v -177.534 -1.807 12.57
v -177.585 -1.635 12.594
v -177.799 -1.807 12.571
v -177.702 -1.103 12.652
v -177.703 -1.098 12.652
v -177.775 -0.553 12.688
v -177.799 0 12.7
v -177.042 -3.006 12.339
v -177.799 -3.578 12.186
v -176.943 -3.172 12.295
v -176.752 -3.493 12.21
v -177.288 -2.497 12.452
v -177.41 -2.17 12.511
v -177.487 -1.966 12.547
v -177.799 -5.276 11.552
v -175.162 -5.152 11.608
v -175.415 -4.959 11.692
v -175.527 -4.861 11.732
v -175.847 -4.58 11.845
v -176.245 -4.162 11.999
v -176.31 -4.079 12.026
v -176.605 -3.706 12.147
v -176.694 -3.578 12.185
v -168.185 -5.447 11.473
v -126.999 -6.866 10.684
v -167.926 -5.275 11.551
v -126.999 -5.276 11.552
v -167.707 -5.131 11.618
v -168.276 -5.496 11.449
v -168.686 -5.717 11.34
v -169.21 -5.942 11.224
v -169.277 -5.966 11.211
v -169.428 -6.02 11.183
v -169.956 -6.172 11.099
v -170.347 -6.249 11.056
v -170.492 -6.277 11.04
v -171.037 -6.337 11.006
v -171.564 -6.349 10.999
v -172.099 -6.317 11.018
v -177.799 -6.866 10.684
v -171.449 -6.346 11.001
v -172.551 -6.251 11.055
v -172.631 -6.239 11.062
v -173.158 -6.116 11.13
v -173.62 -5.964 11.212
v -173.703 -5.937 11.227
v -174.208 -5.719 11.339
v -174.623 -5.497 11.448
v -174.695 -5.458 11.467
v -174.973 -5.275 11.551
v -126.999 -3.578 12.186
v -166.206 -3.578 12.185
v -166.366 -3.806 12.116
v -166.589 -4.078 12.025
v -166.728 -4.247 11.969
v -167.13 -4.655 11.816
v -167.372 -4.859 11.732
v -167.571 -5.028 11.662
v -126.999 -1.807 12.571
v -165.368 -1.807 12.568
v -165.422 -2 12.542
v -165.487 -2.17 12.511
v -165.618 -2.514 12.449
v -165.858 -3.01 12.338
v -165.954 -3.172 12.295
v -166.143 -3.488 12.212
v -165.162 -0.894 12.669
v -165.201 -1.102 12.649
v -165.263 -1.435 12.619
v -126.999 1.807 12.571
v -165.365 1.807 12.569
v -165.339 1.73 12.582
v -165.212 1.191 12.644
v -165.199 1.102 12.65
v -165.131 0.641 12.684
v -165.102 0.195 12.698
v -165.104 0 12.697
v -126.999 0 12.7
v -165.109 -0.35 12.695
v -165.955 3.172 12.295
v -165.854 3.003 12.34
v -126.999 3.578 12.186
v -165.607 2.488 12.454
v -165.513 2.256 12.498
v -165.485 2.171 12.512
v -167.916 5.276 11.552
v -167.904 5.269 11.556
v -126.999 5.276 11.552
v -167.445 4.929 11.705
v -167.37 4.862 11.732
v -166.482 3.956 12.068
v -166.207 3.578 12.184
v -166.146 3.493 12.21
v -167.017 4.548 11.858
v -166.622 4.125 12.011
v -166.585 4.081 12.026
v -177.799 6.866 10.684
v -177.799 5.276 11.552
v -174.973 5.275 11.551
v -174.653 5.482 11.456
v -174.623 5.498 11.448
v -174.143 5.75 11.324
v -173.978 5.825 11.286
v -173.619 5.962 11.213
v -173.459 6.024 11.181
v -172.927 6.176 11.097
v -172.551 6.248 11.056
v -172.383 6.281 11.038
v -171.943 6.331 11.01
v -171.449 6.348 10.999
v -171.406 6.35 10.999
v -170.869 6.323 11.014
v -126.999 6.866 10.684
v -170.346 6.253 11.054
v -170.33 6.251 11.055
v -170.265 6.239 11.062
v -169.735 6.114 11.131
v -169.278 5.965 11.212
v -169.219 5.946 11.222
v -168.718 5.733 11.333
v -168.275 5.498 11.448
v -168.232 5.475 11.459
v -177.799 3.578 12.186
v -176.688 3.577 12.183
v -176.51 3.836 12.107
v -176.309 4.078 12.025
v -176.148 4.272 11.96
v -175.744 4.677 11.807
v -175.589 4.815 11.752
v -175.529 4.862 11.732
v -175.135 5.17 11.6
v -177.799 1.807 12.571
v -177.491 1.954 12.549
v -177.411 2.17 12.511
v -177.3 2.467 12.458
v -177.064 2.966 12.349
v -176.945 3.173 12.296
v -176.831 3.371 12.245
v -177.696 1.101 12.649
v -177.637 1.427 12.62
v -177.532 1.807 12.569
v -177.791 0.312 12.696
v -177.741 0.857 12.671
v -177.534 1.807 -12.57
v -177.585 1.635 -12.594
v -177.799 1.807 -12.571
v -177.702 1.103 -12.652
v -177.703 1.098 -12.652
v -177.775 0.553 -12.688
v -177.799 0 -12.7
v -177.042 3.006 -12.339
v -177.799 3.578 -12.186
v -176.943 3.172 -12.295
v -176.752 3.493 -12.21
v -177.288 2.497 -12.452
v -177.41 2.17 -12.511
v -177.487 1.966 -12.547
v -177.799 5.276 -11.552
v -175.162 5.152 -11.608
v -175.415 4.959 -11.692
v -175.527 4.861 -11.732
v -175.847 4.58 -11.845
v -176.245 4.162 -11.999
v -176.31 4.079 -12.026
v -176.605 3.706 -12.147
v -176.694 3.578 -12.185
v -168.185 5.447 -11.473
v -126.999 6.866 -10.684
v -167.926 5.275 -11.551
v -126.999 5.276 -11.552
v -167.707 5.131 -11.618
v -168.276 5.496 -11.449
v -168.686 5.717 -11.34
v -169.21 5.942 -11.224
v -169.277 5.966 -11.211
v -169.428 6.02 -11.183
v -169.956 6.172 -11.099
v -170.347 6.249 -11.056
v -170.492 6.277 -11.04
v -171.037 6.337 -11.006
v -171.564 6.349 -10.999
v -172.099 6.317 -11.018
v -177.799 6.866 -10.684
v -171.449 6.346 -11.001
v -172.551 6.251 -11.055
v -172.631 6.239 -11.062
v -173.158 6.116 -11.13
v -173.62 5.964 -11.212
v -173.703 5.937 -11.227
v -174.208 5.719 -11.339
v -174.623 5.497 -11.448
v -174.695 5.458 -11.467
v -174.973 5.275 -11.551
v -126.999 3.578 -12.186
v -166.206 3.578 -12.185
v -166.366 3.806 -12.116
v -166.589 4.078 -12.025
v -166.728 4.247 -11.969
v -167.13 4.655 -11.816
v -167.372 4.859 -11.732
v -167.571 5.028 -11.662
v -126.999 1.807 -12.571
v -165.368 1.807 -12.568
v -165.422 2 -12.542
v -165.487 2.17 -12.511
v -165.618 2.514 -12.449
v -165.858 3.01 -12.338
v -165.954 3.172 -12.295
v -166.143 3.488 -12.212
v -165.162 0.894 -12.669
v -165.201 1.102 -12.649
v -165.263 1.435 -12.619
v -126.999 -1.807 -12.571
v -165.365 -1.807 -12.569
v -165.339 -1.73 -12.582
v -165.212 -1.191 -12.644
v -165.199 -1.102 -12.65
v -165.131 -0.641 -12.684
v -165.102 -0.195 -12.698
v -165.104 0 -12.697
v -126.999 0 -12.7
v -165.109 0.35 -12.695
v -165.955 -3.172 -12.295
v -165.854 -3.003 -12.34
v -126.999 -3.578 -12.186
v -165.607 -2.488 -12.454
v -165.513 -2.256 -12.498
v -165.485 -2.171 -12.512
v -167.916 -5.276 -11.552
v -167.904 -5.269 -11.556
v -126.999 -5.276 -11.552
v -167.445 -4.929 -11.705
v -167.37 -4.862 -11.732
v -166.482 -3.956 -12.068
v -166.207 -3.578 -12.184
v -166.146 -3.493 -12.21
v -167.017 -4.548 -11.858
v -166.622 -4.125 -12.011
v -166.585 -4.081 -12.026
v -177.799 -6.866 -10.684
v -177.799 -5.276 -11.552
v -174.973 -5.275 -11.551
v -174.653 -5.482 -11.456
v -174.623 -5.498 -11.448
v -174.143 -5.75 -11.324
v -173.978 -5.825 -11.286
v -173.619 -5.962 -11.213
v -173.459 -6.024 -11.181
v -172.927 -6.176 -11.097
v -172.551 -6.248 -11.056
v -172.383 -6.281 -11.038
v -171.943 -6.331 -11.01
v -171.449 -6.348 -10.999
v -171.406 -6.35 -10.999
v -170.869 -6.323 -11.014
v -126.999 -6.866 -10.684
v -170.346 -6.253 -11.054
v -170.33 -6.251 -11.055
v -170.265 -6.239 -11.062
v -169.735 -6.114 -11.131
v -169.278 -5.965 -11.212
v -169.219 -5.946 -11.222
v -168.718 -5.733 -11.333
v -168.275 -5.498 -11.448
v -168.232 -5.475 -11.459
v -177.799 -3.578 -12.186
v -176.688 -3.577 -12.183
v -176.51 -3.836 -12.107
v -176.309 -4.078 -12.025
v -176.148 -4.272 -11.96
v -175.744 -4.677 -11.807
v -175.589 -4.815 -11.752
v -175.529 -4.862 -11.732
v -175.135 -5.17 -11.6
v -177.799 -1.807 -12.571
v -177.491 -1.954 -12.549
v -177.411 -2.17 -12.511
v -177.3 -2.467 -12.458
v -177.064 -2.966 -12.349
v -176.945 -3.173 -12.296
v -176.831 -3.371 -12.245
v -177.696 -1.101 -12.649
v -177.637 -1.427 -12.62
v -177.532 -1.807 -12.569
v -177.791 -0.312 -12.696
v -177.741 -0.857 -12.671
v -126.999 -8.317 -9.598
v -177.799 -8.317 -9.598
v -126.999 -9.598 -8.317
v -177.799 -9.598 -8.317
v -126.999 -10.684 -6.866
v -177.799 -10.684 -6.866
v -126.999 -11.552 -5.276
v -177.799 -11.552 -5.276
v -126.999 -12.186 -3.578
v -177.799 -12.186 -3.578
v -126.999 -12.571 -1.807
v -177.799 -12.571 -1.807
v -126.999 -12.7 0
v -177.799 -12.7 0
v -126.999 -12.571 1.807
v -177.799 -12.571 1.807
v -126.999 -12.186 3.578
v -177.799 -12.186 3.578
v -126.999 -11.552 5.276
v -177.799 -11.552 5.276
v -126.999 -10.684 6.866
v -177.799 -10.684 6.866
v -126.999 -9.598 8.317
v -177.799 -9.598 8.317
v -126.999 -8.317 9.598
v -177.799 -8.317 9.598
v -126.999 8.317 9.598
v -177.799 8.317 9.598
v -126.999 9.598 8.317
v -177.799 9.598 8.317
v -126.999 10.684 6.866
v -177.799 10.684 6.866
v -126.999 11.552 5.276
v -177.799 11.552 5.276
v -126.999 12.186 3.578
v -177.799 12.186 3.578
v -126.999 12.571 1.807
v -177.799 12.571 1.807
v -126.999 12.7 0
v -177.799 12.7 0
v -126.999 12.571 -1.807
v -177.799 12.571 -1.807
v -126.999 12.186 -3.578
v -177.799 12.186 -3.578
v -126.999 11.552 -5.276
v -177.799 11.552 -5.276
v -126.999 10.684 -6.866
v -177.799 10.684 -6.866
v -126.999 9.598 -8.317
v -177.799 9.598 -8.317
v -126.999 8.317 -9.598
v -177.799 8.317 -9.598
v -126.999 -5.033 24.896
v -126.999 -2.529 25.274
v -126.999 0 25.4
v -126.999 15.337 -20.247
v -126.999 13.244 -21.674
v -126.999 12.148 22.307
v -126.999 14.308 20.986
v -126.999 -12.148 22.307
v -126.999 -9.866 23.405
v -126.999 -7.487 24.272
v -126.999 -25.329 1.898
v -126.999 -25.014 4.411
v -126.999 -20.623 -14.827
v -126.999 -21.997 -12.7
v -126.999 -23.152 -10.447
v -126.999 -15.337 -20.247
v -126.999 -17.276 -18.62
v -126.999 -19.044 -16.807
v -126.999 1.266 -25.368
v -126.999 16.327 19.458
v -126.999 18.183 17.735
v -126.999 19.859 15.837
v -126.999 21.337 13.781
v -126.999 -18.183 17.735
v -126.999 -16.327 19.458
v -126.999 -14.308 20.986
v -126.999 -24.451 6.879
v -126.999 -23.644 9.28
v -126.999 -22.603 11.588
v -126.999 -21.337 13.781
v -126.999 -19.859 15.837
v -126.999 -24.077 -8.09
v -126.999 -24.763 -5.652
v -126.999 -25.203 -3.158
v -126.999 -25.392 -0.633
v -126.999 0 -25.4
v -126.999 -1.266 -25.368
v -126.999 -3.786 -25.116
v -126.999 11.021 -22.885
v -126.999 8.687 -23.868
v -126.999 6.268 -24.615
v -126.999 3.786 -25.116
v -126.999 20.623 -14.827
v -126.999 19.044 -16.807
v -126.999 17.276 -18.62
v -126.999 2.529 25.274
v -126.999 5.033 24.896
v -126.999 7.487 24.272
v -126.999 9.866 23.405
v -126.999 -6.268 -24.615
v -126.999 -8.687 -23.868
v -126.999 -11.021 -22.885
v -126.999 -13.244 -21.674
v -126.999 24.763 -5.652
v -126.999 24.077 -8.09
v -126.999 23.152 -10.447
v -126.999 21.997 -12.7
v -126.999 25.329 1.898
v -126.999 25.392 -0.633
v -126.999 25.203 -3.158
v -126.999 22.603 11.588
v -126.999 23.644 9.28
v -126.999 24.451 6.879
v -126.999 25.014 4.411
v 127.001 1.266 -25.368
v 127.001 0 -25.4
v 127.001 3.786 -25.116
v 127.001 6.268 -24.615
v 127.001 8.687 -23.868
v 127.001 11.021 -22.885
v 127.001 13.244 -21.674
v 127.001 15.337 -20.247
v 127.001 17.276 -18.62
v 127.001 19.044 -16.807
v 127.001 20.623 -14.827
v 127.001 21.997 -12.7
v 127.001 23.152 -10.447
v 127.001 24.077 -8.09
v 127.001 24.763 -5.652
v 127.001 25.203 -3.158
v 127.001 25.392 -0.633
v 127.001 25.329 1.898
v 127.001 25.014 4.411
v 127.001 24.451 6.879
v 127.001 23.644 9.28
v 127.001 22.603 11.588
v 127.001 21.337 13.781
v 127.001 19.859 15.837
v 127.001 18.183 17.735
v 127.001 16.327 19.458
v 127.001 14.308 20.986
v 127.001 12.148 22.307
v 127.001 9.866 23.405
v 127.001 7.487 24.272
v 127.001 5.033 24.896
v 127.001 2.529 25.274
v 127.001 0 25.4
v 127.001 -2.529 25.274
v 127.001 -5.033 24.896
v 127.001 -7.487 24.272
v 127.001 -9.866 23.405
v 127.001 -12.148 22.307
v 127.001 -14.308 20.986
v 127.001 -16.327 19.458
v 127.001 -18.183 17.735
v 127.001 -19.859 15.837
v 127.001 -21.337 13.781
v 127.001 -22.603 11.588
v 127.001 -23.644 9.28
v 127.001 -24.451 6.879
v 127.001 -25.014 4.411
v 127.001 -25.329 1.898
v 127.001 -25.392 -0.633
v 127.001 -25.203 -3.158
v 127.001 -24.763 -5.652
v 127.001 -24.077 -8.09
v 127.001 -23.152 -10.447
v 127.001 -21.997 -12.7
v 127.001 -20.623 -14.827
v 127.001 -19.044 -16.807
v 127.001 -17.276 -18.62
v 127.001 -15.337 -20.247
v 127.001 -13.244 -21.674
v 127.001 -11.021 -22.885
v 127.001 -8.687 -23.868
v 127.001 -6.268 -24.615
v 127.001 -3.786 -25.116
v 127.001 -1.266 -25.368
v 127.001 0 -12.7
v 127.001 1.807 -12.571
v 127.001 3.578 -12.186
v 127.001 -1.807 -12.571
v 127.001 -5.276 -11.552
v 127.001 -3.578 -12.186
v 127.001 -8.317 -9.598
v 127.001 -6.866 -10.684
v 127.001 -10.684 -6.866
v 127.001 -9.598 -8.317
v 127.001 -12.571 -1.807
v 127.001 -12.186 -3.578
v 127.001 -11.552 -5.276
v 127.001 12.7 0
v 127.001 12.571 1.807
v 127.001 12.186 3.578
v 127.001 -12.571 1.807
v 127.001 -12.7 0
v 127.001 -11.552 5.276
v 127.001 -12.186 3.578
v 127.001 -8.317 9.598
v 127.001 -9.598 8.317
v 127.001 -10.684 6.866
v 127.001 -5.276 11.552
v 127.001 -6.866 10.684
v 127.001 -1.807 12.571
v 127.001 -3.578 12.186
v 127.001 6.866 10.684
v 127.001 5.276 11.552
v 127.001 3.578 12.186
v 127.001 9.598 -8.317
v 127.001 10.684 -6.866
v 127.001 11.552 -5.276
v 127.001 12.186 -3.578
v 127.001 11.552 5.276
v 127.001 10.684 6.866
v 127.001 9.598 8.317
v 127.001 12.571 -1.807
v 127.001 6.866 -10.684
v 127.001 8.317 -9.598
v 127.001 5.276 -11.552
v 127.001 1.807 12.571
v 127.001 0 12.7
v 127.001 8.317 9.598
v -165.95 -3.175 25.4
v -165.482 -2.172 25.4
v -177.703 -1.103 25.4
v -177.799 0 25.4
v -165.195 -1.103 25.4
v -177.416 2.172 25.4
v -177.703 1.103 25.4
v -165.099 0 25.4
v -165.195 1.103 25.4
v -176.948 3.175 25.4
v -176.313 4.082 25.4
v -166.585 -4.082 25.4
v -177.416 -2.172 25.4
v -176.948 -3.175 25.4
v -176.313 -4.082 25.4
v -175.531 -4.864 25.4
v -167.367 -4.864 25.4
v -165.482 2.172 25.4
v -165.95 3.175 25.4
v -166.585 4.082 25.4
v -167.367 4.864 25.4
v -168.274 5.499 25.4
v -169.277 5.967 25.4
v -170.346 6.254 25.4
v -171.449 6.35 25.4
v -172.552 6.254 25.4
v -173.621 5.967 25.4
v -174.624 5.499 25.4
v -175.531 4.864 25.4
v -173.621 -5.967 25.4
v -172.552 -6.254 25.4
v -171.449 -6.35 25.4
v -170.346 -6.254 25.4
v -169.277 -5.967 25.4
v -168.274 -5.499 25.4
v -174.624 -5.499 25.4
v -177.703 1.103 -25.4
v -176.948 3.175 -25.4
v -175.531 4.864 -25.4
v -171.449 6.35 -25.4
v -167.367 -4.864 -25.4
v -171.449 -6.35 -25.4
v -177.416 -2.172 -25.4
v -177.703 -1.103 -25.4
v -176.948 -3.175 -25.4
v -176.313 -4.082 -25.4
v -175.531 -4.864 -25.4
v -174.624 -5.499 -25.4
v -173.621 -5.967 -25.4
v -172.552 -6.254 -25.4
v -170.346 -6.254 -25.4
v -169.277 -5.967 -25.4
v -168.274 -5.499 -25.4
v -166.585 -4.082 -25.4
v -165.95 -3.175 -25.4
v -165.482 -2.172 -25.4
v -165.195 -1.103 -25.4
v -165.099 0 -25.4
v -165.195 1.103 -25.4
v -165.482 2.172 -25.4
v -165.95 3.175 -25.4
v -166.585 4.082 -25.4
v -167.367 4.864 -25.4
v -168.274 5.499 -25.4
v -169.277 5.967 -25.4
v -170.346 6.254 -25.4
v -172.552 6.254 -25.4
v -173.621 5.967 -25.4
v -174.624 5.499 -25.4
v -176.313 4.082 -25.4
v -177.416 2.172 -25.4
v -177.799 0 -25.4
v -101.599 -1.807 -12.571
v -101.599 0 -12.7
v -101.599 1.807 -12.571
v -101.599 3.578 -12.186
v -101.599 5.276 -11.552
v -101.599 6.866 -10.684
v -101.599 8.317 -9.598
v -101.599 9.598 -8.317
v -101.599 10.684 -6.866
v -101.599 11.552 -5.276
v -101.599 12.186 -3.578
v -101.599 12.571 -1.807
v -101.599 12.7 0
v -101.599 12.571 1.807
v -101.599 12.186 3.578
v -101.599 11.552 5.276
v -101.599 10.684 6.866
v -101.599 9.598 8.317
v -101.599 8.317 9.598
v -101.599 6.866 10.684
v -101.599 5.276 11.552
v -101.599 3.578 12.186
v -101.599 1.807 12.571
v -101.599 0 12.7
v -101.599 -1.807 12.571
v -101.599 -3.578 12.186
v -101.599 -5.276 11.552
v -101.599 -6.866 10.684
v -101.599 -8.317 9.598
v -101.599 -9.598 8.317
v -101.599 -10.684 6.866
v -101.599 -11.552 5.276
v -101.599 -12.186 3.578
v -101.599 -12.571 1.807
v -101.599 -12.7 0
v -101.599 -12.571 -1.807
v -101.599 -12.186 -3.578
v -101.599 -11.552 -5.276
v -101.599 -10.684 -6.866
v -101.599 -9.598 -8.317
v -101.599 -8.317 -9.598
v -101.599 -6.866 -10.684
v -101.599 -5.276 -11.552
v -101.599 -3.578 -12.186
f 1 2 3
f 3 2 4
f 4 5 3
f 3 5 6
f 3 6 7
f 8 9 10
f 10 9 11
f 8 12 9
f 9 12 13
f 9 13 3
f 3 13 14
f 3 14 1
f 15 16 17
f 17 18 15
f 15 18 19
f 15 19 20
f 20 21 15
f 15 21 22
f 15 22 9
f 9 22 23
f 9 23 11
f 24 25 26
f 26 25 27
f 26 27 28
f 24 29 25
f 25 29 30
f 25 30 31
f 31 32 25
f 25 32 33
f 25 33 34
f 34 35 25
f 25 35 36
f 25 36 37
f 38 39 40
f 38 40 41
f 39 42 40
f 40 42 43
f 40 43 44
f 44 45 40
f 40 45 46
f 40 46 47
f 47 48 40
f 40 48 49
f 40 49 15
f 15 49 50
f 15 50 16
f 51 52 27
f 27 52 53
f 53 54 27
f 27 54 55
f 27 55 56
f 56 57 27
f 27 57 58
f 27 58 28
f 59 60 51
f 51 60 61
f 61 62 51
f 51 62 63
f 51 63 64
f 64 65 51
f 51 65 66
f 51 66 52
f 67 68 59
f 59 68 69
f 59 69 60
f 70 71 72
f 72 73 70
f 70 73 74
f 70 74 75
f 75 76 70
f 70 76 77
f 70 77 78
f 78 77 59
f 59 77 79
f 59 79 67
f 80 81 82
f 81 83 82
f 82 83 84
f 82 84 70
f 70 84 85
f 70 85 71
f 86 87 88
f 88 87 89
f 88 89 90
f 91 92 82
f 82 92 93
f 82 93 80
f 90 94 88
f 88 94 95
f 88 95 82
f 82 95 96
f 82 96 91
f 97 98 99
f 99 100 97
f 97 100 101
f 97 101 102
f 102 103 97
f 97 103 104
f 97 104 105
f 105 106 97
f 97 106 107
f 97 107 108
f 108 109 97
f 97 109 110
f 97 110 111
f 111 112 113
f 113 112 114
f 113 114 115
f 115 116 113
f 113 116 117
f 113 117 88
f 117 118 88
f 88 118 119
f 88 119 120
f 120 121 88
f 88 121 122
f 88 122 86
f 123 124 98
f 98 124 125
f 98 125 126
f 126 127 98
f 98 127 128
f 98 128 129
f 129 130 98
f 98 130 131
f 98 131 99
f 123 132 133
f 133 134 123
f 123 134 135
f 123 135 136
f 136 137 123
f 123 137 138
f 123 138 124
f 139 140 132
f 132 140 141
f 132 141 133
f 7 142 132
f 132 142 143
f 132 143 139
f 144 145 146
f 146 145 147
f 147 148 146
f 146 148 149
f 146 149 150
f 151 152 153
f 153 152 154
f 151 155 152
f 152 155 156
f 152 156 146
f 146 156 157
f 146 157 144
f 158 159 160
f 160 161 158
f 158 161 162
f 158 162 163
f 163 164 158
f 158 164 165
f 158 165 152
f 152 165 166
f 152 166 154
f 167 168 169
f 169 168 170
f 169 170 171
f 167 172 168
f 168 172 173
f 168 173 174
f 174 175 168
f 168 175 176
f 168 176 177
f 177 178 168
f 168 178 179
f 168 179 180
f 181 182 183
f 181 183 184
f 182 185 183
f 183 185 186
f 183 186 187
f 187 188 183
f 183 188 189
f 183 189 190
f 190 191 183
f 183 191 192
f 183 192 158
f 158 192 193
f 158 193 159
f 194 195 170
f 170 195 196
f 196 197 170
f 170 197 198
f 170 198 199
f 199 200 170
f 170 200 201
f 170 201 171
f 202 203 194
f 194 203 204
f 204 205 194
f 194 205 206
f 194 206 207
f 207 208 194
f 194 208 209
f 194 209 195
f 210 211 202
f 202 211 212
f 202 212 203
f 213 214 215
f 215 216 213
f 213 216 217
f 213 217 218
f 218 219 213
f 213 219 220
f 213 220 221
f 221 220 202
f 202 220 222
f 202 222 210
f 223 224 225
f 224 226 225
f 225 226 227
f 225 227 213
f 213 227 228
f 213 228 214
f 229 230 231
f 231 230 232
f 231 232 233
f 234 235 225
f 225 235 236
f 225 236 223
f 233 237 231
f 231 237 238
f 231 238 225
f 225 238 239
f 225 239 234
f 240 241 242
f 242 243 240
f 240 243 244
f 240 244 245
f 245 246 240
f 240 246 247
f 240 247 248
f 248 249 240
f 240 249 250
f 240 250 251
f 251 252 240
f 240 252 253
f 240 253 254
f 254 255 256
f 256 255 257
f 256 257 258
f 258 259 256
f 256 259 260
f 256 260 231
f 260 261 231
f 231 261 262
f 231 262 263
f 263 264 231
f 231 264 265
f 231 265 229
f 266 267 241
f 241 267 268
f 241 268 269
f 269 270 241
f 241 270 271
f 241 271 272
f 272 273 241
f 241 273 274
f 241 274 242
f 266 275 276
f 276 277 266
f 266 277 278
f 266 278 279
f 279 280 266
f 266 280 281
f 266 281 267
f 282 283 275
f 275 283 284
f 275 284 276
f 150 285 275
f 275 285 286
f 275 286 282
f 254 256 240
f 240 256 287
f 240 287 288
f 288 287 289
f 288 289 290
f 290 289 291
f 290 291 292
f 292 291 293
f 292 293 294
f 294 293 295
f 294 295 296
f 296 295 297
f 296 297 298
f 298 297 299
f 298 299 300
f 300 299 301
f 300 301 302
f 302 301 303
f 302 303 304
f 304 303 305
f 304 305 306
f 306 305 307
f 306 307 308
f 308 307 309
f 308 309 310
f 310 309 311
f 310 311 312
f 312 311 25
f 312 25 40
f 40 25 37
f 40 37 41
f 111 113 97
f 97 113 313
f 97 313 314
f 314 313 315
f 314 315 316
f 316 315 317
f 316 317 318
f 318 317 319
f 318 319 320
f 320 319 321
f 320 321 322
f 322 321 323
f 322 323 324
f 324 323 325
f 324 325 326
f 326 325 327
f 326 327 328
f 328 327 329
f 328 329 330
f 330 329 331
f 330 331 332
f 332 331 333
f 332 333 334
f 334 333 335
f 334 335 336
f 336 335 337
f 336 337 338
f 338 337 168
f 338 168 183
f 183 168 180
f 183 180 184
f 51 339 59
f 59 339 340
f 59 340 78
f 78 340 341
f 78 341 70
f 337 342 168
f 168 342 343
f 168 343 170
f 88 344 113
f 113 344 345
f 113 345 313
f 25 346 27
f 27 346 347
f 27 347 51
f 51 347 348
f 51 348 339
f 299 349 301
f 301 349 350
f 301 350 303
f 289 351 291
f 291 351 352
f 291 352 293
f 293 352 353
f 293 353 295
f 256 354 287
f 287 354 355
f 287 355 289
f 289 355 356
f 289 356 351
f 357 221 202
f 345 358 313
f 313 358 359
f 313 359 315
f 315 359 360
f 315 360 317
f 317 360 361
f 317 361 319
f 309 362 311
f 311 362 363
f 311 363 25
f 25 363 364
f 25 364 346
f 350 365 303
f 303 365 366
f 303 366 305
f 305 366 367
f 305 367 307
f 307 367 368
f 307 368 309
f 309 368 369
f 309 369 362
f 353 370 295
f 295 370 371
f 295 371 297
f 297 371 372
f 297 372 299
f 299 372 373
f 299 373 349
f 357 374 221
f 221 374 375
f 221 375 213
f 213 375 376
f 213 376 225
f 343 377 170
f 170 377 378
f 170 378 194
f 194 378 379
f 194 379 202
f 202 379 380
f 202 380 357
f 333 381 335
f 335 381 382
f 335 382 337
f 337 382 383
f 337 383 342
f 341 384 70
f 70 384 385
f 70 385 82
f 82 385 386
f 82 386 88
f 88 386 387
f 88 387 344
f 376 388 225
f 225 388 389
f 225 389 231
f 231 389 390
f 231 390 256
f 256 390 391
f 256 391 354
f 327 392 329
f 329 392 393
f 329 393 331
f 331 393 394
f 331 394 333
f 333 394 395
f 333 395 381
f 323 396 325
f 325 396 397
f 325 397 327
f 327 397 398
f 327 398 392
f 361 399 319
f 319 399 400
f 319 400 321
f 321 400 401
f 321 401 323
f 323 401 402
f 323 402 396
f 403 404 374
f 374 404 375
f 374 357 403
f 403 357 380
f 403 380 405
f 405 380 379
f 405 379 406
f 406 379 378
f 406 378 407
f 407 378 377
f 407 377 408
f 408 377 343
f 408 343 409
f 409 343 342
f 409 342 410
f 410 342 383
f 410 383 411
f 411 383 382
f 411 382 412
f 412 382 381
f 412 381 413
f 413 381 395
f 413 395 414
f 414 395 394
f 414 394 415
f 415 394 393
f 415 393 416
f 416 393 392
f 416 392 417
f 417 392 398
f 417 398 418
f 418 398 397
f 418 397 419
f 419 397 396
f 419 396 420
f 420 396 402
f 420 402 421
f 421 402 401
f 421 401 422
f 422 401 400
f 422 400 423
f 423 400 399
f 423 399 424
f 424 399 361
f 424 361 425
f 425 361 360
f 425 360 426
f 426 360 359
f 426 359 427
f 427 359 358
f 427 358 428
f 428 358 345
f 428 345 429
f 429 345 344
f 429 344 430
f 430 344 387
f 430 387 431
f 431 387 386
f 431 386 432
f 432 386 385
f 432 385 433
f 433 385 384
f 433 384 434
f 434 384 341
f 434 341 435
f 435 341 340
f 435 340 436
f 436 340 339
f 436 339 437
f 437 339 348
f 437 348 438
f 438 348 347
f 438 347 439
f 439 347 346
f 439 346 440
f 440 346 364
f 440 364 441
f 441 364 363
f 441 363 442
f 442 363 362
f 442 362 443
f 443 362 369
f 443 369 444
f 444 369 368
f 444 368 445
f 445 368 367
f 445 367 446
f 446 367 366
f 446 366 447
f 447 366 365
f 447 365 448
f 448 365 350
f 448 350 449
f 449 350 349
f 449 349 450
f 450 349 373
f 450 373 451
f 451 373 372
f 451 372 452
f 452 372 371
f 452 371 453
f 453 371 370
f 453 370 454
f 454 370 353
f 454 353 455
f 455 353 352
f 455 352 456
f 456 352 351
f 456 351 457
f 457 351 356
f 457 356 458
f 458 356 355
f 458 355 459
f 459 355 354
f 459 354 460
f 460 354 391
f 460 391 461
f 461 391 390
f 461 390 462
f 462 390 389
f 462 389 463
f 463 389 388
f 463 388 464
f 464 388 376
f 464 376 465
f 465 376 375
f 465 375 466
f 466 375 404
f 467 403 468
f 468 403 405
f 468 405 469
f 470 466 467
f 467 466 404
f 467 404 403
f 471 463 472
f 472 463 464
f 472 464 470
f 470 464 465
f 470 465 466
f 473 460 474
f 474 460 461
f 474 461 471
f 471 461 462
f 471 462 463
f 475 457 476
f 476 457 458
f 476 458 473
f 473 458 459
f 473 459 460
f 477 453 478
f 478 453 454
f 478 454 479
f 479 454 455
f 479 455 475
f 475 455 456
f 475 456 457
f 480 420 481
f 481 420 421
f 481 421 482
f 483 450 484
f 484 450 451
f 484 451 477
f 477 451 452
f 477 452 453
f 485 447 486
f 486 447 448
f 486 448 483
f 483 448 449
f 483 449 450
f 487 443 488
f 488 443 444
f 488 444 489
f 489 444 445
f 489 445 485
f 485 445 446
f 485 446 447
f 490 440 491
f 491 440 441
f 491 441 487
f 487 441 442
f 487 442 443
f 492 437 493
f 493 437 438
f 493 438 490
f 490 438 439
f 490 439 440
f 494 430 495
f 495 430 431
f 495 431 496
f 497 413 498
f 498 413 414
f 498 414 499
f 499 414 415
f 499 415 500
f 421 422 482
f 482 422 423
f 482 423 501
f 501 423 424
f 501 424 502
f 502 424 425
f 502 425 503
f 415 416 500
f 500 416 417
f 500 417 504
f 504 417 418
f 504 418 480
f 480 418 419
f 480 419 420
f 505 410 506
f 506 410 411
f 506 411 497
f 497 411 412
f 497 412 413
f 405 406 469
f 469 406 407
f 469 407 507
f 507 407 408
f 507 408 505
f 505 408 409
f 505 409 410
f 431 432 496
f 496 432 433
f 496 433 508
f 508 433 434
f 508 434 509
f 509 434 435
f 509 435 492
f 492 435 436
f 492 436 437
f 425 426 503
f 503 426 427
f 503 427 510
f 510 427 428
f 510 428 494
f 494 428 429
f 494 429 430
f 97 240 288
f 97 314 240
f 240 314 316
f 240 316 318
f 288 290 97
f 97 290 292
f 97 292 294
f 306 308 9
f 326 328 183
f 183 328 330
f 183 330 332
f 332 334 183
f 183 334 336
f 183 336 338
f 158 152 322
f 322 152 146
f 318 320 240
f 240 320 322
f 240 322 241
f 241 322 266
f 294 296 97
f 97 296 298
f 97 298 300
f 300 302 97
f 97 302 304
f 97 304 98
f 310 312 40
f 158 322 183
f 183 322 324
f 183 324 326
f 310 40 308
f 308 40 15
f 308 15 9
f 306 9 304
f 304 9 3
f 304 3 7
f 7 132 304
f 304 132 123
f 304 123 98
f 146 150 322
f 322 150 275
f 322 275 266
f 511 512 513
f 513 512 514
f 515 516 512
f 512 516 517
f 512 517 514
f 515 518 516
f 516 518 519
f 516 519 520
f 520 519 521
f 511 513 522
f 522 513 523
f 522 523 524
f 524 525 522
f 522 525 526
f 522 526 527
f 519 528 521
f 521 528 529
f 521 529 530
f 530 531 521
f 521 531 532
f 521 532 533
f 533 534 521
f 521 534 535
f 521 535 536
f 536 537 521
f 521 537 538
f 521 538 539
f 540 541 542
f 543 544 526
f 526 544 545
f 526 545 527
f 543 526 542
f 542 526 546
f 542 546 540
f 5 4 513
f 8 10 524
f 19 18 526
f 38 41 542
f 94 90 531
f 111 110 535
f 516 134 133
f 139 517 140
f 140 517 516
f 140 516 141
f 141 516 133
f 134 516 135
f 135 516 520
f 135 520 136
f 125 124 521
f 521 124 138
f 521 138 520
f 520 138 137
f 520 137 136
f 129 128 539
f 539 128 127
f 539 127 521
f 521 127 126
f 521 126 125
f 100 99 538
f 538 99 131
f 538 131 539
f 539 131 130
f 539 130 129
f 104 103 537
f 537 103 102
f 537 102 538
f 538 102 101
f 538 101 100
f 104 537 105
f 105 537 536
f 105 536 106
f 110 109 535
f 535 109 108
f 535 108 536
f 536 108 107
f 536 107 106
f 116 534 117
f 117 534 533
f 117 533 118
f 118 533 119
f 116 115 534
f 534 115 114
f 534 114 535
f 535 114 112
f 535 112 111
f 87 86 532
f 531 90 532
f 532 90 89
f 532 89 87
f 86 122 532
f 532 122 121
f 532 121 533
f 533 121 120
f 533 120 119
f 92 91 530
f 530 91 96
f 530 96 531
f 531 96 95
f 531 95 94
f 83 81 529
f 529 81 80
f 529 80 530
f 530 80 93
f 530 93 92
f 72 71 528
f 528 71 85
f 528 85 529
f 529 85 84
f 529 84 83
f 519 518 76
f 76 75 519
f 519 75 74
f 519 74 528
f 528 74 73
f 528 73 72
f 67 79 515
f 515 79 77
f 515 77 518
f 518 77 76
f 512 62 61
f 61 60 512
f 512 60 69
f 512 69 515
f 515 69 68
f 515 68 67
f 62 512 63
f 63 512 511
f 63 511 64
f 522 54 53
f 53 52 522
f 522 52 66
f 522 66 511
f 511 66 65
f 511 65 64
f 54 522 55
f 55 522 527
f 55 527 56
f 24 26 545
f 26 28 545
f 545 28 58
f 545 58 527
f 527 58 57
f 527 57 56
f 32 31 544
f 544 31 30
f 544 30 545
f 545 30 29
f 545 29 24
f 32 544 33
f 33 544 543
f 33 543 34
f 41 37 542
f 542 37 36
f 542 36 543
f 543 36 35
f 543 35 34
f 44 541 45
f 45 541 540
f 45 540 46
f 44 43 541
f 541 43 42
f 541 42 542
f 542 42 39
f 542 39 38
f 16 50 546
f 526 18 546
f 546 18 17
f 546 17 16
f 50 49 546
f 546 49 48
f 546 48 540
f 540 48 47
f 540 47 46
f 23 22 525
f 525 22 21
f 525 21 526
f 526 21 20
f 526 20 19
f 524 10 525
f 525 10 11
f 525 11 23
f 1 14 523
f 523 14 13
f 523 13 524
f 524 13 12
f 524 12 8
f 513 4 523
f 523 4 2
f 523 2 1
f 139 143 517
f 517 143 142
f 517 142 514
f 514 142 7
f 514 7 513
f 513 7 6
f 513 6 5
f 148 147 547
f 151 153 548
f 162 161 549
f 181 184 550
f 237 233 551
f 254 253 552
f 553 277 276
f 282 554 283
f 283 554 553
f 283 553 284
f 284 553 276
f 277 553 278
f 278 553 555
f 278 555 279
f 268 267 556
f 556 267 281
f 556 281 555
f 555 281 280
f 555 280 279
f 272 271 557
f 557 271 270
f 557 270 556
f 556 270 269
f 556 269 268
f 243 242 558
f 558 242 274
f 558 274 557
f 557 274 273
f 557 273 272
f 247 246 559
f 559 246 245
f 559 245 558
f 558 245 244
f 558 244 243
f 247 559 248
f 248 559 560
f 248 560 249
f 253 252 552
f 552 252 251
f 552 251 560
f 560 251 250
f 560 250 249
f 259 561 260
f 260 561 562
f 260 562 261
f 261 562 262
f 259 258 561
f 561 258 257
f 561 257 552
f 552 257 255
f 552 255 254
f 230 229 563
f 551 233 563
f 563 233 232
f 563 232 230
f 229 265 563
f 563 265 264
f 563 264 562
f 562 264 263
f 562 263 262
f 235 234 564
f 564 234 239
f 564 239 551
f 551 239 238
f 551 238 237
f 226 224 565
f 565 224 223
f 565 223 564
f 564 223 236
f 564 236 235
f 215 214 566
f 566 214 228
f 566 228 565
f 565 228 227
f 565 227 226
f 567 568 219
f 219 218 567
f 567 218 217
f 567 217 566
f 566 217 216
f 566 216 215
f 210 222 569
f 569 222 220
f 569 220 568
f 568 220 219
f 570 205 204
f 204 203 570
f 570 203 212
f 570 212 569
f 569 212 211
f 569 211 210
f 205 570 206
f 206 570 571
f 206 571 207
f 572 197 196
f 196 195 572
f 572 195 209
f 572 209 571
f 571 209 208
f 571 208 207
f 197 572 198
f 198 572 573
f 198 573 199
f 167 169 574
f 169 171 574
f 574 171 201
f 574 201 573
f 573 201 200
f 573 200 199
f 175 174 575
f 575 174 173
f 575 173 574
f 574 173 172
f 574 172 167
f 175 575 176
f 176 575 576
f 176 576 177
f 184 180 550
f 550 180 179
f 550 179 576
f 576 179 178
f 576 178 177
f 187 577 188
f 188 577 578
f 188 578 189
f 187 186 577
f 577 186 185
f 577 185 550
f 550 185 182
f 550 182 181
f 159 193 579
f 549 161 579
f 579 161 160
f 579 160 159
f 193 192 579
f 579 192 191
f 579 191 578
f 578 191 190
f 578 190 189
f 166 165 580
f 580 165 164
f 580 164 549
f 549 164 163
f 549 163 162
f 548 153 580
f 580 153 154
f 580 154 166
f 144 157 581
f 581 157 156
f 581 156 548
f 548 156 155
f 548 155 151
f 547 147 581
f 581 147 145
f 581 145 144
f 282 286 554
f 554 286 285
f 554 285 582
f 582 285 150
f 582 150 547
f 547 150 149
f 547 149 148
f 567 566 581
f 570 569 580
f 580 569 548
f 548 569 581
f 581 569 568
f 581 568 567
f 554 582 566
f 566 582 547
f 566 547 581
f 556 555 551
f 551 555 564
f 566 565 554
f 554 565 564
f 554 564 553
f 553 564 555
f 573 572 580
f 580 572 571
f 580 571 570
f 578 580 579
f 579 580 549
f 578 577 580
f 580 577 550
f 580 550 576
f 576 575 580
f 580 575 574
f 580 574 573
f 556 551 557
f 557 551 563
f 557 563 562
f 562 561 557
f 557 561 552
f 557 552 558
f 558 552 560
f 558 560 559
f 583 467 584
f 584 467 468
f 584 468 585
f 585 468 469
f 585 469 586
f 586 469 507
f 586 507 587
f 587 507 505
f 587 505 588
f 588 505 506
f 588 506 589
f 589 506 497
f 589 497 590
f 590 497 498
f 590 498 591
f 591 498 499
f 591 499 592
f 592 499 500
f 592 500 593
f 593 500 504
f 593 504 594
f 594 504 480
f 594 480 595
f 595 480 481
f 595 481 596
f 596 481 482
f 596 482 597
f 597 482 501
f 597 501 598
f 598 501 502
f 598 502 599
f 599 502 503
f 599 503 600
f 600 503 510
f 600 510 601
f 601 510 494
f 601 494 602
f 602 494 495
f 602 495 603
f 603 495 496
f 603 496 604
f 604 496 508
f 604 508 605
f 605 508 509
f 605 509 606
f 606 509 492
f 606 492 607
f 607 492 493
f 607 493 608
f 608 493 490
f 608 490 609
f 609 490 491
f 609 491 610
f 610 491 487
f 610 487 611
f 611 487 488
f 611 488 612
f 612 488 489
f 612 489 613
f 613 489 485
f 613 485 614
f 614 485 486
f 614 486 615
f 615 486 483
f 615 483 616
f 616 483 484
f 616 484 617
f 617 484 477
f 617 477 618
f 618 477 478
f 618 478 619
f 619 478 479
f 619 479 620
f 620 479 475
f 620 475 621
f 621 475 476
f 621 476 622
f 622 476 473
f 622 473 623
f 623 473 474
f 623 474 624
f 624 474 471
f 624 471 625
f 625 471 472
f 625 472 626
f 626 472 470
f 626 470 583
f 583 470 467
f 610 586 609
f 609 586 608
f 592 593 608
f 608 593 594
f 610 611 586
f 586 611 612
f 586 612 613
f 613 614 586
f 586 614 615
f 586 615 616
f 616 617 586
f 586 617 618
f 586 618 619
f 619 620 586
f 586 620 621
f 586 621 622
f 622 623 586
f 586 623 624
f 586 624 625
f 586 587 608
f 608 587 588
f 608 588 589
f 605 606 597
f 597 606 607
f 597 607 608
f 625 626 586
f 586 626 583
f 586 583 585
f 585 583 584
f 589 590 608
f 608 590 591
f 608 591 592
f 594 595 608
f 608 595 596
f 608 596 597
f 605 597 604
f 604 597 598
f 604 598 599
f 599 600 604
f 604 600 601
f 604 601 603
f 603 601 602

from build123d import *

# Parameters (mm, degrees)
SKETCH1_R           = 25.4
BOSS_EXTRUDE1_DEPTH = 127
SKETCH2_R           = 12.7
BOSS_EXTRUDE2_DEPTH = 50.8
SKETCH3_R           = 6.35
BOSS_EXTRUDE3_DEPTH = 25.4
SKETCH4_R           = 12.7
CUT_EXTRUDE1_DEPTH  = 228.6


with BuildPart() as part:
    # Sketch1 → Boss-Extrude1 (new body, symmetric)
    with BuildSketch(Plane(origin=(0, 0, 0), x_dir=(0, 0, -1), z_dir=(1, 0, 0))):
        Circle(SKETCH1_R)
    extrude(amount=BOSS_EXTRUDE1_DEPTH, both=True)

    # Sketch2 → Boss-Extrude2 (add)
    with BuildSketch(Plane.ZY.offset(127)):
        Circle(SKETCH2_R)
    extrude(amount=BOSS_EXTRUDE2_DEPTH)

    # Sketch3 → Boss-Extrude3 (add, symmetric)
    with BuildSketch(Plane.XY):
        with Locations((-171.45, 0)):
            Circle(SKETCH3_R)
    extrude(amount=BOSS_EXTRUDE3_DEPTH, both=True)

    # Sketch4 → Cut-Extrude1 (cut)
    with BuildSketch(Plane(origin=(127, 0, 0), x_dir=(0, 0, -1), z_dir=(1, 0, 0))):
        Circle(SKETCH4_R)
    extrude(amount=-CUT_EXTRUDE1_DEPTH, mode=Mode.SUBTRACT)


solid = part.part
